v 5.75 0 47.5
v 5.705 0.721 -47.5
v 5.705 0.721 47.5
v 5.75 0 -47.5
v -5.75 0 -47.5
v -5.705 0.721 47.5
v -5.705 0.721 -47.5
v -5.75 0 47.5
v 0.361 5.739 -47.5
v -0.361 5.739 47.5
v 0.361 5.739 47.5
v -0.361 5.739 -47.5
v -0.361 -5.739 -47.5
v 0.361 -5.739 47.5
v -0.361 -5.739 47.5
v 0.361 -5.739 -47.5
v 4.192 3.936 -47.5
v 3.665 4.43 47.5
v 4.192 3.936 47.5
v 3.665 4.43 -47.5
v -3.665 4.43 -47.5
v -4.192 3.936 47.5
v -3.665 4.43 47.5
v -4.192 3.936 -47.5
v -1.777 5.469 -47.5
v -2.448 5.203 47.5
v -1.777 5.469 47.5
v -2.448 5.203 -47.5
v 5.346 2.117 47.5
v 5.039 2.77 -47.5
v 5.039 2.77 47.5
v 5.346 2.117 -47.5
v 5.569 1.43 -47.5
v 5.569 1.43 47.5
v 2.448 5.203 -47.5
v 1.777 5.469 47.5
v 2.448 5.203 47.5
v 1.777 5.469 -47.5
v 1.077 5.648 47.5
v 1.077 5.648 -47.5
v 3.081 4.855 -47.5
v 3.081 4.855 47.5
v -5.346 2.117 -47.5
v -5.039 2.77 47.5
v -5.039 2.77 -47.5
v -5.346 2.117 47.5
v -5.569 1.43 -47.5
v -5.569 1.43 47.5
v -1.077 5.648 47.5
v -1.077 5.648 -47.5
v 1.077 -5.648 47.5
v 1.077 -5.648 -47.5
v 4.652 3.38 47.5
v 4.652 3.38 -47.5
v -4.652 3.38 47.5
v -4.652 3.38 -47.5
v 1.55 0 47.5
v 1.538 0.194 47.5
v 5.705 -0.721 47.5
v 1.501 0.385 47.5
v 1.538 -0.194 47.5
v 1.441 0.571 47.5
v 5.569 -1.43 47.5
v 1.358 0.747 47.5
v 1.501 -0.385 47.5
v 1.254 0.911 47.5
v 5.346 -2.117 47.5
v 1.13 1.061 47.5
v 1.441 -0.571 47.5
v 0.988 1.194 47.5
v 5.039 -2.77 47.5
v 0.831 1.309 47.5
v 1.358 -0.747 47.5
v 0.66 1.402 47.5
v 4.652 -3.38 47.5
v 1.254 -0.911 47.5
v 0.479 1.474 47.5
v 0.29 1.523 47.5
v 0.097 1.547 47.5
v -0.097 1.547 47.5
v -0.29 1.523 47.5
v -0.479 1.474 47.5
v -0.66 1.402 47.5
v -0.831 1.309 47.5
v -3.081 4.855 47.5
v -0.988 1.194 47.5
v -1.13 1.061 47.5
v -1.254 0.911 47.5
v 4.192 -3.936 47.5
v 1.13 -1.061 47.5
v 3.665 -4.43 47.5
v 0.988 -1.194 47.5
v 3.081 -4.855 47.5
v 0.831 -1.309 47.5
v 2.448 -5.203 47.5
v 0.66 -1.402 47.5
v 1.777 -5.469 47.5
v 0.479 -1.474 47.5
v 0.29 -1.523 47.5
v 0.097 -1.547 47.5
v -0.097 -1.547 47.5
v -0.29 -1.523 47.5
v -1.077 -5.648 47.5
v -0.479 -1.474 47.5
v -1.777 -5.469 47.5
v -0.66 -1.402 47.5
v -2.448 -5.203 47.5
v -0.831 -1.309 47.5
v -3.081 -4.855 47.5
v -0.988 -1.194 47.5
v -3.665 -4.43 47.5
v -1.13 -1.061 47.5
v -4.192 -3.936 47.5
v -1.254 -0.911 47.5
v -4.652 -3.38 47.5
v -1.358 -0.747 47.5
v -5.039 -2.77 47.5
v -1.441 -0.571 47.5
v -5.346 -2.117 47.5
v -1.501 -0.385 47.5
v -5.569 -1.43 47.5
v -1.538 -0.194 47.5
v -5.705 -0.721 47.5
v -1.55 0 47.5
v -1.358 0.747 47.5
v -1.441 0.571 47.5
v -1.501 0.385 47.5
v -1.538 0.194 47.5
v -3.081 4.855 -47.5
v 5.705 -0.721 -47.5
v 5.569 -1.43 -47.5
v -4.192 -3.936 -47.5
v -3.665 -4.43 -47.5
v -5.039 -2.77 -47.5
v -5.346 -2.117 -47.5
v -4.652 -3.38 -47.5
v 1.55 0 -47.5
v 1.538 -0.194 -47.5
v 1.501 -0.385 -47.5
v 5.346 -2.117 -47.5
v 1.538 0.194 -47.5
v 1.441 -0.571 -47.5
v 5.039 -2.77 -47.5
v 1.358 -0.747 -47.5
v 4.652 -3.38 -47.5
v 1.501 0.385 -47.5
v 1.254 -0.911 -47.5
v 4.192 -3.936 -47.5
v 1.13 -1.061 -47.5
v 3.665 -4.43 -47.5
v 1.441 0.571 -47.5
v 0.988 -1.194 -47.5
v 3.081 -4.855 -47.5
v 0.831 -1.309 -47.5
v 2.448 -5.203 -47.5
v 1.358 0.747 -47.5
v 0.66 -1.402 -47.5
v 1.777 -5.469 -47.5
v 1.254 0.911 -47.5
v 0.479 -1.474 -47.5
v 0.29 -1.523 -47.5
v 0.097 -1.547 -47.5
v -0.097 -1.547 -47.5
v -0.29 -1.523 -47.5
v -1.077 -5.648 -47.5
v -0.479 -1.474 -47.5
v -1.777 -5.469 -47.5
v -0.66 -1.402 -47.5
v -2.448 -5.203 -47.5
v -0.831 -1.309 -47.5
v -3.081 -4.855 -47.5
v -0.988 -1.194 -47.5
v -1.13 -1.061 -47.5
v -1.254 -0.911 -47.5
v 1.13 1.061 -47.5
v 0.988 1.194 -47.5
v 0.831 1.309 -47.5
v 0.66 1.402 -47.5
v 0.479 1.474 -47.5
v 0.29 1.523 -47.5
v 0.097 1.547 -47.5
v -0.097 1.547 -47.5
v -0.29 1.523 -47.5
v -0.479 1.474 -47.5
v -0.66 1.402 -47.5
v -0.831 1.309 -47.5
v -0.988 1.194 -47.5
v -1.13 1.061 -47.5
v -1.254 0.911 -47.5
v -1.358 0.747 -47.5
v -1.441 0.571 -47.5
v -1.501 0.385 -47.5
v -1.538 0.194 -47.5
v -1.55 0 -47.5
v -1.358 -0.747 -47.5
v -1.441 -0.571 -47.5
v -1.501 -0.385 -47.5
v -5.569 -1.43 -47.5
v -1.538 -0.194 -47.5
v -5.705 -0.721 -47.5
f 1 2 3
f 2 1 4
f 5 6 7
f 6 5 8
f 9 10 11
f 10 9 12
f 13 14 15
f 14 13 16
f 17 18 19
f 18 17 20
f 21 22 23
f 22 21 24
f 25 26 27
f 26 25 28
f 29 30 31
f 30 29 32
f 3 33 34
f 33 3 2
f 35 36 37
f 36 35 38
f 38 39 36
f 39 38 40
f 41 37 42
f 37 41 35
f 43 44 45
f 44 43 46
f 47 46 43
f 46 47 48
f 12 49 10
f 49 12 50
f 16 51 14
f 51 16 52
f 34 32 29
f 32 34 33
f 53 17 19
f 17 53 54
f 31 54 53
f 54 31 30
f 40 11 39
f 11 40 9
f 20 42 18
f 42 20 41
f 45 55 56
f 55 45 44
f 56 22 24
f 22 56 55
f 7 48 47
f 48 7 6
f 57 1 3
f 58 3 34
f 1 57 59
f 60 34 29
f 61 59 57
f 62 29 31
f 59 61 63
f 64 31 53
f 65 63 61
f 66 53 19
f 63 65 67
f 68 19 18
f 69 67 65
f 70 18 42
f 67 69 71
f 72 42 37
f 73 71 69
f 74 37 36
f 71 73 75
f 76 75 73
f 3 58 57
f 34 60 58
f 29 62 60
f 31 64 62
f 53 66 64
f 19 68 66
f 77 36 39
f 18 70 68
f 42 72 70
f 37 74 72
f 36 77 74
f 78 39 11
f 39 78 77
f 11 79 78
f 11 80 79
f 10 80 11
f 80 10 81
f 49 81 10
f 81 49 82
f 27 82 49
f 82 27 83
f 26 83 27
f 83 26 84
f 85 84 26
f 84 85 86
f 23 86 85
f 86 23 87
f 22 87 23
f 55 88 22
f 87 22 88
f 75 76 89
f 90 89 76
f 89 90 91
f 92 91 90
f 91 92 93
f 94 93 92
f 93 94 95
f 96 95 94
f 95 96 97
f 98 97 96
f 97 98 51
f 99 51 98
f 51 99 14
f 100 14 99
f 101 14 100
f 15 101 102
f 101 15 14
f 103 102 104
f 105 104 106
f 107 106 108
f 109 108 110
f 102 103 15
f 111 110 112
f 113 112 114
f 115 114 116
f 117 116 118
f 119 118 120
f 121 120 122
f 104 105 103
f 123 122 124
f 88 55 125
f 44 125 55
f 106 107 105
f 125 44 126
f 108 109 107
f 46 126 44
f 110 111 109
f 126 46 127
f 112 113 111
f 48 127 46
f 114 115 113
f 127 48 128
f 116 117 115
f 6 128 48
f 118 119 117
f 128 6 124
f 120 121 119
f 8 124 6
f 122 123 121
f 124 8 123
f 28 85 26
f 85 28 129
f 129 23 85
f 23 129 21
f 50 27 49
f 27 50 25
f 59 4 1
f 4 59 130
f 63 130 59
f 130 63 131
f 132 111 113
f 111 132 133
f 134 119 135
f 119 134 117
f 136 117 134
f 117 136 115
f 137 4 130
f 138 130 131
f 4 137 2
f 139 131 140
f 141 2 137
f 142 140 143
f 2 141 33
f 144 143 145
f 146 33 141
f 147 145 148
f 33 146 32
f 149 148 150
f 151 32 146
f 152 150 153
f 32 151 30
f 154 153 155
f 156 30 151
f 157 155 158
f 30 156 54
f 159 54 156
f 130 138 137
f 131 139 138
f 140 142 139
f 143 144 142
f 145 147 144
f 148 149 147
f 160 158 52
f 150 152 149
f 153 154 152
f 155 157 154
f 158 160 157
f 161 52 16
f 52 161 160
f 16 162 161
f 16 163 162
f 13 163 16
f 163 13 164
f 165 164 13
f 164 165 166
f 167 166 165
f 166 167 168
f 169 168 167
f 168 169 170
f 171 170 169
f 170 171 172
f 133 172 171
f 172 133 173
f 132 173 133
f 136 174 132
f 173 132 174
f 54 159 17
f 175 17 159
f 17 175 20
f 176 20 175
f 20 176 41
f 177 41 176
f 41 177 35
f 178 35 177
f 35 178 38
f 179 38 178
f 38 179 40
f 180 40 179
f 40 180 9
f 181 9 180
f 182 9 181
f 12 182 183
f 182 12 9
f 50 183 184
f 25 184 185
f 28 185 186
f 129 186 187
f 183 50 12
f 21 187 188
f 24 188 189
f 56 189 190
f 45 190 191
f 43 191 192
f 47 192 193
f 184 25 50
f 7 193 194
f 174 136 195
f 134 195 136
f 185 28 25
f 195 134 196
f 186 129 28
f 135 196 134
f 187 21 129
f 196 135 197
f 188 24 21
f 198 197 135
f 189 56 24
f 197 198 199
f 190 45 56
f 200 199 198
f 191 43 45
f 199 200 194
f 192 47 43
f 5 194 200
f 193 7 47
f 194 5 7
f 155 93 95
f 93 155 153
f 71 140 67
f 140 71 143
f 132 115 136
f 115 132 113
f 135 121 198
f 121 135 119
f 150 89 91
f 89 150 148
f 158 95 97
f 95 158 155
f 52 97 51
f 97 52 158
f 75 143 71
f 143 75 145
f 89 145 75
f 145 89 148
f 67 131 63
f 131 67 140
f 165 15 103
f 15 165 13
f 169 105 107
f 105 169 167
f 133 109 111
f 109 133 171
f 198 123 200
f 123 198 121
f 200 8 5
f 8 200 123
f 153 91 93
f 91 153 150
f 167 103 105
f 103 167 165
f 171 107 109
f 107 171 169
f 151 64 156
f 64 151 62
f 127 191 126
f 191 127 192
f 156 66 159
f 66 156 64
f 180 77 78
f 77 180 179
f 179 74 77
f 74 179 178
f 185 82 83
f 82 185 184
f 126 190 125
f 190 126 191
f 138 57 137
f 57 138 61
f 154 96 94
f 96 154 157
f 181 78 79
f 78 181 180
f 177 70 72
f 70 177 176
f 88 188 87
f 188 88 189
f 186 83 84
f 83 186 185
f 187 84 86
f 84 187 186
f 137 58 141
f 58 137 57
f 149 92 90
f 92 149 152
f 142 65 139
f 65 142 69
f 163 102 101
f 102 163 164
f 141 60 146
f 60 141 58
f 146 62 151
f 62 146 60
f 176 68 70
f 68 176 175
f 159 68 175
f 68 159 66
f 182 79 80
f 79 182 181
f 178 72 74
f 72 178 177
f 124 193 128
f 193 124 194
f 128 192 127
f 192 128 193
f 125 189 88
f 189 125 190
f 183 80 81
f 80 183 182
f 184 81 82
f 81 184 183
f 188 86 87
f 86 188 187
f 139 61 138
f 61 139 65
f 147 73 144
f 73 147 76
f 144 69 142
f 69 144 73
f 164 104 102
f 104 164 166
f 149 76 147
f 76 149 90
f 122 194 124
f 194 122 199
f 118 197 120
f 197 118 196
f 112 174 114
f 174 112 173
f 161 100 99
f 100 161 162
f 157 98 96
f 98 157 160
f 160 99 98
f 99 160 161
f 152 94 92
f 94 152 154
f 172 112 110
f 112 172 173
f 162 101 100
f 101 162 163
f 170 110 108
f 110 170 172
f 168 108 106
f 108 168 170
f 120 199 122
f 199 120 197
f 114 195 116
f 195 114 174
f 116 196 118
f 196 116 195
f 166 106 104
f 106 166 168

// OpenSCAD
$fn = 50;


difference() {
	union() {
		translate(v = [0, 0, -47.5000000000]) {
			cylinder(h = 95, r = 5.7500000000);
		}
	}
	union() {
		translate(v = [0, 0, -100.0000000000]) {
			cylinder(h = 200, r = 1.5500000000);
		}
	}
}
